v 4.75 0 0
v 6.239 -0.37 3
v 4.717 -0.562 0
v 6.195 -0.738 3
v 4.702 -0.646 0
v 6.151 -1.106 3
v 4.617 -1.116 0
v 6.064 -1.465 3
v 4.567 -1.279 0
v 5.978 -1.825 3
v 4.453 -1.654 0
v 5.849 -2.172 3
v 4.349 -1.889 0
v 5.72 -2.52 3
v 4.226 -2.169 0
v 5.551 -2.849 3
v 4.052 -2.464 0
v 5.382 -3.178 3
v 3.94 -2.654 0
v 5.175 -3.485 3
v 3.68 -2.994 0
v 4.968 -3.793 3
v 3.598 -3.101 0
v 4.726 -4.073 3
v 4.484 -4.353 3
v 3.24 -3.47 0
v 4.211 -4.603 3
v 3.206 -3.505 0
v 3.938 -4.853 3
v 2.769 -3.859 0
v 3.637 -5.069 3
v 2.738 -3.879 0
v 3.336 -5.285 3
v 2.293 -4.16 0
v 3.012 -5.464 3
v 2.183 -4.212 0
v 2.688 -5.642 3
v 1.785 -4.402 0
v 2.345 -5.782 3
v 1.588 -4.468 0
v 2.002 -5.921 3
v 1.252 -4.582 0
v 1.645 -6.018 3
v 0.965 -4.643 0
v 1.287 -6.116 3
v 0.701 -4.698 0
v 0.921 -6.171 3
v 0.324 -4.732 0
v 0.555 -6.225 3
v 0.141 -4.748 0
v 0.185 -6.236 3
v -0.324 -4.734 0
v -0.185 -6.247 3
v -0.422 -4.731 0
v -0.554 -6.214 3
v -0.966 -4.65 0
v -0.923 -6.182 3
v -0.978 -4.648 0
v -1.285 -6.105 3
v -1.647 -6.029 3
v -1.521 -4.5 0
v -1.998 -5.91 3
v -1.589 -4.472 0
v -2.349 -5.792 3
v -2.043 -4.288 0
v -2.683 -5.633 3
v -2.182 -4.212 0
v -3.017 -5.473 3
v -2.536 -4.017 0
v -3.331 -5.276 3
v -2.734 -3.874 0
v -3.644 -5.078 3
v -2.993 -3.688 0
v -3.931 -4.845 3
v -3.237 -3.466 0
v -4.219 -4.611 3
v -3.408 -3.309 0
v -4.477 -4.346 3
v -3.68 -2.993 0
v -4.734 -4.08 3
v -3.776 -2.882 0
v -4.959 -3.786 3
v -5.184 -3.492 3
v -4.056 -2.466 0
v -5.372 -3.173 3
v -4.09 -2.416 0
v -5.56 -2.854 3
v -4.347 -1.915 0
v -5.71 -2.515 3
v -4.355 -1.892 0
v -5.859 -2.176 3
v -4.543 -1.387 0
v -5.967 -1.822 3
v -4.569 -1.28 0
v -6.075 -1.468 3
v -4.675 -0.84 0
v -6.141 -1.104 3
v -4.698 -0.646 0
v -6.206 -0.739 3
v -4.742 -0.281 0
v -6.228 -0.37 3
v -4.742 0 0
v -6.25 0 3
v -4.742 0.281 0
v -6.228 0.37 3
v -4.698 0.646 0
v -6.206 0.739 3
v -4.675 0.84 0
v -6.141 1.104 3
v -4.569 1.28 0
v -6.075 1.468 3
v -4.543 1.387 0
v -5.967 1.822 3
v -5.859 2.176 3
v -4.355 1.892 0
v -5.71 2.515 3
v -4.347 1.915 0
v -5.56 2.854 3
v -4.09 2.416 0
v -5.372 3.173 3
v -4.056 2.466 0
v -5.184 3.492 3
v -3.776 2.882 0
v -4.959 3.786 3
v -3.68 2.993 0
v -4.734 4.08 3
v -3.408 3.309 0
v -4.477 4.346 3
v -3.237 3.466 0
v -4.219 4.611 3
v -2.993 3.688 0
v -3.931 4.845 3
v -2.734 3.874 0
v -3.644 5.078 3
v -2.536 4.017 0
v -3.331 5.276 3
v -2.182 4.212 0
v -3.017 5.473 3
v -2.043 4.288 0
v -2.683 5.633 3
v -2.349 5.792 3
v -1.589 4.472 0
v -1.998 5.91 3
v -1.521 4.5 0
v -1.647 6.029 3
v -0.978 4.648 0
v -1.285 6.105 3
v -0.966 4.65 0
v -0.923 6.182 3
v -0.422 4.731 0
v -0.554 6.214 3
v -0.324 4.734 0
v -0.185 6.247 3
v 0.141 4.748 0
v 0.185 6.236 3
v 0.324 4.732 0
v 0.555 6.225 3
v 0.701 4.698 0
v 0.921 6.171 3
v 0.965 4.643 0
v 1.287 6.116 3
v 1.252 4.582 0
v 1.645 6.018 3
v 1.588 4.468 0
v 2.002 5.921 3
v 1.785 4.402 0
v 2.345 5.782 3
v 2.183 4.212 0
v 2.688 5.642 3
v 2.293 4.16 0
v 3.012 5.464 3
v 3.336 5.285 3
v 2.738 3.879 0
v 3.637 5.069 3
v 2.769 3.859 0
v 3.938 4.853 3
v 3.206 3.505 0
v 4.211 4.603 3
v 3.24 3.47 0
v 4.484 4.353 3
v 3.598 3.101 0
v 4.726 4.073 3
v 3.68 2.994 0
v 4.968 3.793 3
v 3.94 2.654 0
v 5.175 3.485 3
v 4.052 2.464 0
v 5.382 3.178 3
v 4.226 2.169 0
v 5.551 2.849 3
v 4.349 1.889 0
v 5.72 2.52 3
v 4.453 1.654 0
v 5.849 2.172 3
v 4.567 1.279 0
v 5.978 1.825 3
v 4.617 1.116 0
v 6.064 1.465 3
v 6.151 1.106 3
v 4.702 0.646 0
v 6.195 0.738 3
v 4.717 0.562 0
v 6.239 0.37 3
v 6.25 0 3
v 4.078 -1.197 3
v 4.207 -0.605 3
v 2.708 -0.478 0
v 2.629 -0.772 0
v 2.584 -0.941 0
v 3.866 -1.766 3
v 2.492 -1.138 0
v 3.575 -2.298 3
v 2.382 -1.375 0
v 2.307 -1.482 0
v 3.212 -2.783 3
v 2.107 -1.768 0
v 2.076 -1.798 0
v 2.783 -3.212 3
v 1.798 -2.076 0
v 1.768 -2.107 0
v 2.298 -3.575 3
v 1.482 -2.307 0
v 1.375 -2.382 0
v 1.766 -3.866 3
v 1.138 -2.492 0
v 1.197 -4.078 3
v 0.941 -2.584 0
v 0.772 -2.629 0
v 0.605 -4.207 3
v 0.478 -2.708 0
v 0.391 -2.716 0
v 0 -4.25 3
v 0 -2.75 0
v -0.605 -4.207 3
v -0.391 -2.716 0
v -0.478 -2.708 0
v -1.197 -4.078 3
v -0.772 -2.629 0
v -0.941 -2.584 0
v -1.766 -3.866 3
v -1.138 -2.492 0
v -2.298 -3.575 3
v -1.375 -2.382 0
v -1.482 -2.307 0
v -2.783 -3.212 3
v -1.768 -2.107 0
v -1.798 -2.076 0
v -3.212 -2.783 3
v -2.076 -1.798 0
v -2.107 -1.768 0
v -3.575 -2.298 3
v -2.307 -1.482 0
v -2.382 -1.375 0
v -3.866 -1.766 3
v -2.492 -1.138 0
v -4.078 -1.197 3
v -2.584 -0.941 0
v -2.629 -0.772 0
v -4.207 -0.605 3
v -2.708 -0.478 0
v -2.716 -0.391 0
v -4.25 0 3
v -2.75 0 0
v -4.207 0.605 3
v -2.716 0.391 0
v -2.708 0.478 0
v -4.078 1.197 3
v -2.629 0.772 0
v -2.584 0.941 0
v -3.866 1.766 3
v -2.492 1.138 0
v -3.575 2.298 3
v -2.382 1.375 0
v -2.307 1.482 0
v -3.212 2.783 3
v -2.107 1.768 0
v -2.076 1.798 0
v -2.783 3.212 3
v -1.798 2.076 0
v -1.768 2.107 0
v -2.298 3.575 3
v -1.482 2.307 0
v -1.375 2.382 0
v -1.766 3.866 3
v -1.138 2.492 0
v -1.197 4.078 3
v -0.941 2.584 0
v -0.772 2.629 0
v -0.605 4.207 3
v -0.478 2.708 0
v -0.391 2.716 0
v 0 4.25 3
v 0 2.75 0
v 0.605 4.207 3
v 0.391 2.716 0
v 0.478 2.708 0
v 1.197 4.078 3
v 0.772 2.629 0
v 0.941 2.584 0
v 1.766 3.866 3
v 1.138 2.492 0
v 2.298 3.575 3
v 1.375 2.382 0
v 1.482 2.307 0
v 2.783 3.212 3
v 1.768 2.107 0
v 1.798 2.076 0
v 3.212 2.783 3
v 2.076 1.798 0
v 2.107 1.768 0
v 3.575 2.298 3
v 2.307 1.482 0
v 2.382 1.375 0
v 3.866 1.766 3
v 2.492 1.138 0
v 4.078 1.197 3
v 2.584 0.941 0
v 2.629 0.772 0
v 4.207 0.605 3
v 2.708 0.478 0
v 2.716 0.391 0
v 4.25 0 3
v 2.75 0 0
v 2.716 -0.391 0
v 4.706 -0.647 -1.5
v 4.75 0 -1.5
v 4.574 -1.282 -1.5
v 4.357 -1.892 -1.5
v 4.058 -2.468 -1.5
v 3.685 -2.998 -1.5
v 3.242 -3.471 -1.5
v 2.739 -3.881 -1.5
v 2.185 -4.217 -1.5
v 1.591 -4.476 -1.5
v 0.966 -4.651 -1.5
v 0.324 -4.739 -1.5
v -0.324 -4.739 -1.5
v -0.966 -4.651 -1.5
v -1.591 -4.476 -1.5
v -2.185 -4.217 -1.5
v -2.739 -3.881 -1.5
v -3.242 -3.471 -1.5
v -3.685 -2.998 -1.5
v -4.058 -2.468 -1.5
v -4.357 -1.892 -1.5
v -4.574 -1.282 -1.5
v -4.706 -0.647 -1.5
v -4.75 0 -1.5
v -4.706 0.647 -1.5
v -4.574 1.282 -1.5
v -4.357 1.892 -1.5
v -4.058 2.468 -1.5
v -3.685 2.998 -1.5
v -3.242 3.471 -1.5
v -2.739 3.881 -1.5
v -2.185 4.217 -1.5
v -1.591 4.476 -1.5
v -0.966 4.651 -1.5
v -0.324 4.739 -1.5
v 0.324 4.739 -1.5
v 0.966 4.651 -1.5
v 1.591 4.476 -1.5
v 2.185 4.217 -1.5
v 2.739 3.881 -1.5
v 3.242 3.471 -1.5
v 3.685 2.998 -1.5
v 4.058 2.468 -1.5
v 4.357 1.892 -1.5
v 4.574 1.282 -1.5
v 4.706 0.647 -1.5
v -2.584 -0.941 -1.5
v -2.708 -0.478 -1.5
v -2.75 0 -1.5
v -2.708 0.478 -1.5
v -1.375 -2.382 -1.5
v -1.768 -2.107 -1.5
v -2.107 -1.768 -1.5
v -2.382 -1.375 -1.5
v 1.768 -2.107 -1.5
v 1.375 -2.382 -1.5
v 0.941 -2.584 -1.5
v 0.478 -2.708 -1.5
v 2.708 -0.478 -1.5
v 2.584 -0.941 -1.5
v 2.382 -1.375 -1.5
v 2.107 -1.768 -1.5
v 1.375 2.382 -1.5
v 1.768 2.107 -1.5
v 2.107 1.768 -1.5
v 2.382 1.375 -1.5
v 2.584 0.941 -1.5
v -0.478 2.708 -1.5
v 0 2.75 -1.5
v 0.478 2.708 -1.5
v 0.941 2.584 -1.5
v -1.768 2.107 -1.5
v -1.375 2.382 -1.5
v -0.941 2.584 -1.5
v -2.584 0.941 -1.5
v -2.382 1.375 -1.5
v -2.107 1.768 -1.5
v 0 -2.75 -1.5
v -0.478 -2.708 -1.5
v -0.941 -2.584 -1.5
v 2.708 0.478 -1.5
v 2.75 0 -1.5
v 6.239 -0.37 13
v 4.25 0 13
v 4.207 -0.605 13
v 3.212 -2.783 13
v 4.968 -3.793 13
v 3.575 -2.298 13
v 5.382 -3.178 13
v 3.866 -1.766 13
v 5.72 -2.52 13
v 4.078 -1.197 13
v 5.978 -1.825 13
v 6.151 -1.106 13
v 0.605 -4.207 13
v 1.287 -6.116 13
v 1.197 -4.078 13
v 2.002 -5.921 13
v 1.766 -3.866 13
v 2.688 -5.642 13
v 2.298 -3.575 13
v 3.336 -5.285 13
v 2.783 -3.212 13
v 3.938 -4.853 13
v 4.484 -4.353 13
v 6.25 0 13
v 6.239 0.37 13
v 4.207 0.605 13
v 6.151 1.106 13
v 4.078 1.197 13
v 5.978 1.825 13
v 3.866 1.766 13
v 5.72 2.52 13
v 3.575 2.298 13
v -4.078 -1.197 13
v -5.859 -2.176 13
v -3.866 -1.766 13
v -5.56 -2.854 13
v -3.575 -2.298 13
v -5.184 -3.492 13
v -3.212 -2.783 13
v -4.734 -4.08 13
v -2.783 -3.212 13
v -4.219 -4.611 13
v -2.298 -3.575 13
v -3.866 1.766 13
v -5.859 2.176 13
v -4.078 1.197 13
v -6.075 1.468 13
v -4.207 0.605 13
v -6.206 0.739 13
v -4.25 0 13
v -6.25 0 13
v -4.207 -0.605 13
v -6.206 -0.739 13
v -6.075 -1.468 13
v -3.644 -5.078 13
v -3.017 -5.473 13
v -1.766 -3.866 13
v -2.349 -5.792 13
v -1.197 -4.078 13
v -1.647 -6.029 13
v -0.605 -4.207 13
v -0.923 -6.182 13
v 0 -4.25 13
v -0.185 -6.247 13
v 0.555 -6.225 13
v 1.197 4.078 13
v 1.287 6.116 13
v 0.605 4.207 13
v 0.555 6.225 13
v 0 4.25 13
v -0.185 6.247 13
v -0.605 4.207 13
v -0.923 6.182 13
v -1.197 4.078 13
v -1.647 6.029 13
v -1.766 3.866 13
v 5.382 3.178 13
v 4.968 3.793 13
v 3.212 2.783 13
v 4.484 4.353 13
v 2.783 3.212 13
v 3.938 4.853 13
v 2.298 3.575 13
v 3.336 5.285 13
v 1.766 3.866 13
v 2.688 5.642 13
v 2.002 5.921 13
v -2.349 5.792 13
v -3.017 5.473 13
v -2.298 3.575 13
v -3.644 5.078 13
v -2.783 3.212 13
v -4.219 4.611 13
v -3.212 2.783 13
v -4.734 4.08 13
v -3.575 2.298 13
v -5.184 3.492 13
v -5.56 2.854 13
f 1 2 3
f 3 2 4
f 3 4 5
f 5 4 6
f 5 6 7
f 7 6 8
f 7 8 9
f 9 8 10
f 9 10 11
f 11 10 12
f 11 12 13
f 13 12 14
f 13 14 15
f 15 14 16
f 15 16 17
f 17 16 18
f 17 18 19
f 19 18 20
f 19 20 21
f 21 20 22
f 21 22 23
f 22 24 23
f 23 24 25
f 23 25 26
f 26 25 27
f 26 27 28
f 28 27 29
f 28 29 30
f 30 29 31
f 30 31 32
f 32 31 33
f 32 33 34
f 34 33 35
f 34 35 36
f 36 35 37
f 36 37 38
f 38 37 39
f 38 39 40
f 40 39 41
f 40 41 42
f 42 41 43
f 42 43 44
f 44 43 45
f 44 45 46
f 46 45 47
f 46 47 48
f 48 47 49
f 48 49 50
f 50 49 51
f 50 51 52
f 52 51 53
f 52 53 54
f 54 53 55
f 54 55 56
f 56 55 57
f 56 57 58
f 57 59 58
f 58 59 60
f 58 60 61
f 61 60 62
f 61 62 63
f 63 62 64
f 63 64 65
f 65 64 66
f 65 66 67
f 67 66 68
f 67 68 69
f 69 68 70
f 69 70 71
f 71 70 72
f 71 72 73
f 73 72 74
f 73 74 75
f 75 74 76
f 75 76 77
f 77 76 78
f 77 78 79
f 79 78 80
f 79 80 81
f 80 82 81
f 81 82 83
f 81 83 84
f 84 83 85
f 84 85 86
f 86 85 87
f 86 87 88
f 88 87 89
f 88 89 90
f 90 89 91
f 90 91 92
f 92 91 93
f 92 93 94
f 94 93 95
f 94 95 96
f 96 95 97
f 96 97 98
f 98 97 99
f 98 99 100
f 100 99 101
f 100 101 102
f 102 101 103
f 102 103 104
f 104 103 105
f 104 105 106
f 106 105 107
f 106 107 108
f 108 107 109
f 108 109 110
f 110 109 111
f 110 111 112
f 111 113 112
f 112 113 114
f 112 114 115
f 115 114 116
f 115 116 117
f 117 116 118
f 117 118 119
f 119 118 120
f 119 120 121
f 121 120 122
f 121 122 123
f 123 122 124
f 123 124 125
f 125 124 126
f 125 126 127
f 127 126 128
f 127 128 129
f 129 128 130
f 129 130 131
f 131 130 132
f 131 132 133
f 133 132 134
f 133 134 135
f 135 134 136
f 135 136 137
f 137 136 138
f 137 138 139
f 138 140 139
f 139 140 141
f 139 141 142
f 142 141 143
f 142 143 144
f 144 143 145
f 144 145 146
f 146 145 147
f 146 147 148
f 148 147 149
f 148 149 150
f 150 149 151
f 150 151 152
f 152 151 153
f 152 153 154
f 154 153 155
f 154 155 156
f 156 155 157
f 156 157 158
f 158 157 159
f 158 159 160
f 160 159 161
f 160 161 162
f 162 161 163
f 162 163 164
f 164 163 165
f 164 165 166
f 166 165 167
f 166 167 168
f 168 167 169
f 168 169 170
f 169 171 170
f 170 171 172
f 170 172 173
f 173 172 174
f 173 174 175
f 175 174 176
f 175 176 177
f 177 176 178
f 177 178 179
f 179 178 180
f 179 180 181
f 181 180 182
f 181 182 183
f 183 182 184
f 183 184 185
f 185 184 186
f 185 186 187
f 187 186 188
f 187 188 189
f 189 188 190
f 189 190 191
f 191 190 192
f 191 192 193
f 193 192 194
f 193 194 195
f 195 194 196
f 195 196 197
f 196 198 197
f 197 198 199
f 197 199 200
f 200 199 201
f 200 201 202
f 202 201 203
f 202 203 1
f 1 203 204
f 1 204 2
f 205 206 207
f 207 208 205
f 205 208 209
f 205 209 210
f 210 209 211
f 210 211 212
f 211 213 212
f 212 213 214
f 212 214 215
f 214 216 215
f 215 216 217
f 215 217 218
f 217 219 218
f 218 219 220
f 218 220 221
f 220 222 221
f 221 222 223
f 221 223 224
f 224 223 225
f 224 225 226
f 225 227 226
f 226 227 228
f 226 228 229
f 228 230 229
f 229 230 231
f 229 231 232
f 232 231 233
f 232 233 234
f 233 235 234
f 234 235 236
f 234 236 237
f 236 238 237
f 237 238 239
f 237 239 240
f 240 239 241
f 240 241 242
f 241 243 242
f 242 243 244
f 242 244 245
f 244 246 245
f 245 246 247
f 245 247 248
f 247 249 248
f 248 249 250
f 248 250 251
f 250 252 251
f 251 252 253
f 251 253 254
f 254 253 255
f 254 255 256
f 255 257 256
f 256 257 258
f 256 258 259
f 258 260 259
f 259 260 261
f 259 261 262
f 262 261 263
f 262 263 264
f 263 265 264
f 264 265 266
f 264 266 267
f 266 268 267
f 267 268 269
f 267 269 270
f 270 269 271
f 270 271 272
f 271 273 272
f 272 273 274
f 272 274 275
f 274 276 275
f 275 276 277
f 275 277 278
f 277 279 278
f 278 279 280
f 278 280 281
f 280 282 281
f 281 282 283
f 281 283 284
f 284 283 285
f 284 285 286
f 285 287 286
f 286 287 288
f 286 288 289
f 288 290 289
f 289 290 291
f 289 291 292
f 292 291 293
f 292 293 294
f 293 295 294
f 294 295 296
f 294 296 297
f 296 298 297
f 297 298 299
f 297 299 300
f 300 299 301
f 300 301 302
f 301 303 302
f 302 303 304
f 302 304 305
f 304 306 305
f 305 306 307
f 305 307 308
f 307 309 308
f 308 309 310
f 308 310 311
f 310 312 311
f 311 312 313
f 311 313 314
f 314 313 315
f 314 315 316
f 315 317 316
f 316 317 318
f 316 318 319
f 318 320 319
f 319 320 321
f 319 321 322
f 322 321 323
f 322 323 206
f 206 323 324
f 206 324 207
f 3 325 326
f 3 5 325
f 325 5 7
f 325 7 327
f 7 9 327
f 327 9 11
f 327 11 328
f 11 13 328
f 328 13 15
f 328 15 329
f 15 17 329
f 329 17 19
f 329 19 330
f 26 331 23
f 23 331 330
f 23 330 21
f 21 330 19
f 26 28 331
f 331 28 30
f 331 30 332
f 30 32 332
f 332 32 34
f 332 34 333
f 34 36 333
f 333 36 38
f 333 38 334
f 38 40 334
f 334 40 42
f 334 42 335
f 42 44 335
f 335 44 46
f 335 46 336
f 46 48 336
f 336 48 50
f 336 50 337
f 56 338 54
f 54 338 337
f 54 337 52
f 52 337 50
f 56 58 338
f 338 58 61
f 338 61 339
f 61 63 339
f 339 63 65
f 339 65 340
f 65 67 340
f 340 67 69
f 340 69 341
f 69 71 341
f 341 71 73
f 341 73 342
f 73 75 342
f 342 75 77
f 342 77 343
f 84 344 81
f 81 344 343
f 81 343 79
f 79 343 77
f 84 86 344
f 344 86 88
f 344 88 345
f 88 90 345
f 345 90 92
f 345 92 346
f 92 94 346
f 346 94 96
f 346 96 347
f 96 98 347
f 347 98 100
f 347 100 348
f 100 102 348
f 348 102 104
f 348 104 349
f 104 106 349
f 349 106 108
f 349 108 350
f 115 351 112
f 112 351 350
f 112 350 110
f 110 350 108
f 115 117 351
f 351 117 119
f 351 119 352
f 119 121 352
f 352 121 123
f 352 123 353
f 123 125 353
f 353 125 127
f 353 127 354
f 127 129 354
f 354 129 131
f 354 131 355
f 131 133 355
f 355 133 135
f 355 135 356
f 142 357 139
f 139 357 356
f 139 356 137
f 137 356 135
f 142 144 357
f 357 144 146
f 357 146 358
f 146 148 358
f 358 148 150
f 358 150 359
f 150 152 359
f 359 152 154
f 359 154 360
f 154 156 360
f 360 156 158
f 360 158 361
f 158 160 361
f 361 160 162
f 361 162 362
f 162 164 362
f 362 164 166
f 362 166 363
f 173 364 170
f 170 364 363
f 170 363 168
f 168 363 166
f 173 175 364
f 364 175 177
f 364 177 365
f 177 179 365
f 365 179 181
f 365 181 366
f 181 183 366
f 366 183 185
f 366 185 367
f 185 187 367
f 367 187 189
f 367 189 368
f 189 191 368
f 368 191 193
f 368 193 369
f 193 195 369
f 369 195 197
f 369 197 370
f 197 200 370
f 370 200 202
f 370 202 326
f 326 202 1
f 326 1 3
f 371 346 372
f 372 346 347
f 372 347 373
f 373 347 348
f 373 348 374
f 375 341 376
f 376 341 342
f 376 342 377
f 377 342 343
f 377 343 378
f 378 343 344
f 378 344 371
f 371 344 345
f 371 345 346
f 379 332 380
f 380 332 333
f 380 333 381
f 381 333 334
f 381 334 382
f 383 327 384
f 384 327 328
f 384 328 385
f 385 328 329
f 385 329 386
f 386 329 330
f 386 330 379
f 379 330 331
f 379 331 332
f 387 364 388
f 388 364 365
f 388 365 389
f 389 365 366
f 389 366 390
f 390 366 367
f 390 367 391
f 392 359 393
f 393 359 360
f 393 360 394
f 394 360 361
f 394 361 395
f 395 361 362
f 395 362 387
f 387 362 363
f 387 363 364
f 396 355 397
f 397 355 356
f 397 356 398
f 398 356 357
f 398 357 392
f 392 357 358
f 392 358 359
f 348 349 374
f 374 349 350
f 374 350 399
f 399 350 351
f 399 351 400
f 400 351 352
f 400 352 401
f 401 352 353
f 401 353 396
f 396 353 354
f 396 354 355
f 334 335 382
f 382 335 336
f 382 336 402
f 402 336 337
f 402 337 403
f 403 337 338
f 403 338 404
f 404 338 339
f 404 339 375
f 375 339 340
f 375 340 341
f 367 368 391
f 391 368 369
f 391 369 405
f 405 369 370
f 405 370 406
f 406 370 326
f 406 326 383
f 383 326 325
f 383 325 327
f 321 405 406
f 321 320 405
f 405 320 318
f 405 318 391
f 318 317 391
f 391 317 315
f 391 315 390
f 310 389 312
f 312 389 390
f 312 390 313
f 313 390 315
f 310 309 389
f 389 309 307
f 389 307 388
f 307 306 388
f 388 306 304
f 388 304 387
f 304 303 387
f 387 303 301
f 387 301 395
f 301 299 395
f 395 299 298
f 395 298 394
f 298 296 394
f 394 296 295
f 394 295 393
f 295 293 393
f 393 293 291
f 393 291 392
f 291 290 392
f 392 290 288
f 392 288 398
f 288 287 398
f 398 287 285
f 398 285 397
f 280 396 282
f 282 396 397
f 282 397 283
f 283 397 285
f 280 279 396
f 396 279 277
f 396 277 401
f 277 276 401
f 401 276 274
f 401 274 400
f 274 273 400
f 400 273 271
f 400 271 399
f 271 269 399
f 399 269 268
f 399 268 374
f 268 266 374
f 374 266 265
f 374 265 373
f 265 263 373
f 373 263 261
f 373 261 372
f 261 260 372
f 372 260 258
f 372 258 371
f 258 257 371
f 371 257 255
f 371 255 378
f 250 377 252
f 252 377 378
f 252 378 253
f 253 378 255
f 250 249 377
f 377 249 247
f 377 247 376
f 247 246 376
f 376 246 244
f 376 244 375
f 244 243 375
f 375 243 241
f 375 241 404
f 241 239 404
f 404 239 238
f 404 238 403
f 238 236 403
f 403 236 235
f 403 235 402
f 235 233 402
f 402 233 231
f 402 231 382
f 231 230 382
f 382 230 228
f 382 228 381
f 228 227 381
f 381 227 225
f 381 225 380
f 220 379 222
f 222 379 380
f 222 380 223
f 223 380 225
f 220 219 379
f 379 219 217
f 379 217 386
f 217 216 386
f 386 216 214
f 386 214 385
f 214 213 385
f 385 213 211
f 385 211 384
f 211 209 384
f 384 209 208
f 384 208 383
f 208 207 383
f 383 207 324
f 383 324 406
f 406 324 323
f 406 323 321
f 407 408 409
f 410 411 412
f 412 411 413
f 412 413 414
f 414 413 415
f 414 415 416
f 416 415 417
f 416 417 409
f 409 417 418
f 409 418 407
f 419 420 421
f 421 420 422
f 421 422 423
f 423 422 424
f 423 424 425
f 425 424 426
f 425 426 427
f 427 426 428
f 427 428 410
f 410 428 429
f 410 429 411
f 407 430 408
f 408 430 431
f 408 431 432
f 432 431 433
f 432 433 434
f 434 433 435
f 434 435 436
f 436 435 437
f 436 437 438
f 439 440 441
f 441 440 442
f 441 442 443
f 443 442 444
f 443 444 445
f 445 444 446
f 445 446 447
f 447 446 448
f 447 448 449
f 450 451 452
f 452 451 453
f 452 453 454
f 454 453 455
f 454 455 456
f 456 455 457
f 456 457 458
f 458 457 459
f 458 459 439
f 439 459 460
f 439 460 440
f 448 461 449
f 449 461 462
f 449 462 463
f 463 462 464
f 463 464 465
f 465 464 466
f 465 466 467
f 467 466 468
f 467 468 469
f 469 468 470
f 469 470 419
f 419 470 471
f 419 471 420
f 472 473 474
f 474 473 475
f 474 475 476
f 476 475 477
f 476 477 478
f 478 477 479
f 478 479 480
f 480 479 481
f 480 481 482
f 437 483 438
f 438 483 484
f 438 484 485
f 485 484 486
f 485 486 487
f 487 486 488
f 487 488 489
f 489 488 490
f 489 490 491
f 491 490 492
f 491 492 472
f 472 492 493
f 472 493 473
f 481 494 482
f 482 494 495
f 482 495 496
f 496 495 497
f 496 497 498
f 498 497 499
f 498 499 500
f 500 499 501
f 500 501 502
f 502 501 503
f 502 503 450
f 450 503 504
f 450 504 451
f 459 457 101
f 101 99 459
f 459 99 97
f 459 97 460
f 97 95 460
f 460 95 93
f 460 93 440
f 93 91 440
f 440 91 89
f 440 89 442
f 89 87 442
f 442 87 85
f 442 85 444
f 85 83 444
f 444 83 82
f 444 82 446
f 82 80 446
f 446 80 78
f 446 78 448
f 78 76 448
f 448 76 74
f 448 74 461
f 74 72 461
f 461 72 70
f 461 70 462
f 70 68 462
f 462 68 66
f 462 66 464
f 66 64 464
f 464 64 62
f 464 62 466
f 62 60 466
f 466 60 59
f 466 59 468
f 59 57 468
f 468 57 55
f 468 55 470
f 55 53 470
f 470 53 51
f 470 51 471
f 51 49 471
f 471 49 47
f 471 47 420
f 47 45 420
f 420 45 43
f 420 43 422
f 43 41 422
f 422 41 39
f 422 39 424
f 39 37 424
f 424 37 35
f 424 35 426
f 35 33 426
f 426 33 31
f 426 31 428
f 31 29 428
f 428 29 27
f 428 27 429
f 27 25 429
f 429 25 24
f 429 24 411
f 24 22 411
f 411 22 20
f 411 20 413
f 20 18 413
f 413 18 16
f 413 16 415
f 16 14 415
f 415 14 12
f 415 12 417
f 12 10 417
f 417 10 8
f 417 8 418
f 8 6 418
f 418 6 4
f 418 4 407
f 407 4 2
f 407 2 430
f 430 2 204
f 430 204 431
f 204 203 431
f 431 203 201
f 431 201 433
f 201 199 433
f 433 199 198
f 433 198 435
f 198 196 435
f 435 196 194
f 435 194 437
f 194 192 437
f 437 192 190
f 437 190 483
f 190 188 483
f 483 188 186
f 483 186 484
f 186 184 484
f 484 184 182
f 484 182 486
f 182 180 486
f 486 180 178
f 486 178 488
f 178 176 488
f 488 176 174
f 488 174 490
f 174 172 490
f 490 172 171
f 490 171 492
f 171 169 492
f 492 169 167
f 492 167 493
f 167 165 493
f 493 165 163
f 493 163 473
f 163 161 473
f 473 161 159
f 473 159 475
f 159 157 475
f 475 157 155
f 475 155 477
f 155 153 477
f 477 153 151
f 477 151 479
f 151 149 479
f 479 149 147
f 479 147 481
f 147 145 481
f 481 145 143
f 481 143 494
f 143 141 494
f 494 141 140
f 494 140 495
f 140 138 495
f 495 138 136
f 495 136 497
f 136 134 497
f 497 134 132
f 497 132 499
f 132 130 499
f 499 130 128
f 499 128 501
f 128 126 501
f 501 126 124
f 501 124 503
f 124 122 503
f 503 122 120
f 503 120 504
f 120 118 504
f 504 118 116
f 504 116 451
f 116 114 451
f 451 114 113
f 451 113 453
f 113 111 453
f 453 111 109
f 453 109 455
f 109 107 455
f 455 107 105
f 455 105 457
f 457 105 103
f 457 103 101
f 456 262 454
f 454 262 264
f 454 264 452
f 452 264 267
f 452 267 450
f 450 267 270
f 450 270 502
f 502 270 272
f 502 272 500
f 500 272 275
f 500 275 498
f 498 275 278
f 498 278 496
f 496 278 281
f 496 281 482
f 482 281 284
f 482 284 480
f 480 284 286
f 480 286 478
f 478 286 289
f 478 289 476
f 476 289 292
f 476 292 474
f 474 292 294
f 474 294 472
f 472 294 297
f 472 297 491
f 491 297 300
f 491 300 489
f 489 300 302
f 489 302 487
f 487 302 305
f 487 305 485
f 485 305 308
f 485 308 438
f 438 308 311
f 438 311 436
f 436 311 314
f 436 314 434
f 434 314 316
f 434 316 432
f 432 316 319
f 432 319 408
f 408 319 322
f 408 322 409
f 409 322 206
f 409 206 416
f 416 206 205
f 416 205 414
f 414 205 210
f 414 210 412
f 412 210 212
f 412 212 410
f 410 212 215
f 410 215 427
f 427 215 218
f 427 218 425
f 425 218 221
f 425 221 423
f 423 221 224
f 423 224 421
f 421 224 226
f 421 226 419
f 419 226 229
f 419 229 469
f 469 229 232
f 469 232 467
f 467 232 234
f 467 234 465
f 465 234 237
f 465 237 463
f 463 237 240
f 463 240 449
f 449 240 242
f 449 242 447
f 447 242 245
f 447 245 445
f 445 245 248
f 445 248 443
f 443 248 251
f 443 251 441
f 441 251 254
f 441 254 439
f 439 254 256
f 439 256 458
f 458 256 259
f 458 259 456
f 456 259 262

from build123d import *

# Parameters (mm, degrees)
SKETCH1_R           = 4.75
SKETCH2_R           = 6.25
SKETCH1_68_R        = 2.75
SKETCH2_53_R        = 4.25
SKETCH1_69_R        = 4.75
SKETCH1_69_R_2      = 2.75
BOSS_EXTRUDE1_DEPTH = 1.5
SKETCH2_54_R        = 6.25
SKETCH2_54_R_2      = 4.25
BOSS_EXTRUDE2_DEPTH = 10


with BuildPart() as part:
    # Sketch1 → Loft2 section 0
    with BuildSketch(Plane.XY):
        Circle(SKETCH1_R)
    # Sketch2 → Loft2 section 1
    with BuildSketch(Plane.XY.offset(3)):
        Circle(SKETCH2_R)
    loft()

    # Sketch1<68> → Cut-Loft1 section 0
    with BuildSketch(Plane.XY):
        Circle(SKETCH1_68_R)
    # Sketch2<53> → Cut-Loft1 section 1
    with BuildSketch(Plane.XY.offset(3)):
        Circle(SKETCH2_53_R)
    loft(mode=Mode.SUBTRACT)

    # Sketch1<69> → Boss-Extrude1 (add)
    with BuildSketch(Plane.XY):
        Circle(SKETCH1_69_R)
        Circle(SKETCH1_69_R_2, mode=Mode.SUBTRACT)
    extrude(amount=-BOSS_EXTRUDE1_DEPTH)

    # Sketch2<54> → Boss-Extrude2 (add)
    with BuildSketch(Plane.XY.offset(3)):
        Circle(SKETCH2_54_R)
        Circle(SKETCH2_54_R_2, mode=Mode.SUBTRACT)
    extrude(amount=BOSS_EXTRUDE2_DEPTH)


solid = part.part
